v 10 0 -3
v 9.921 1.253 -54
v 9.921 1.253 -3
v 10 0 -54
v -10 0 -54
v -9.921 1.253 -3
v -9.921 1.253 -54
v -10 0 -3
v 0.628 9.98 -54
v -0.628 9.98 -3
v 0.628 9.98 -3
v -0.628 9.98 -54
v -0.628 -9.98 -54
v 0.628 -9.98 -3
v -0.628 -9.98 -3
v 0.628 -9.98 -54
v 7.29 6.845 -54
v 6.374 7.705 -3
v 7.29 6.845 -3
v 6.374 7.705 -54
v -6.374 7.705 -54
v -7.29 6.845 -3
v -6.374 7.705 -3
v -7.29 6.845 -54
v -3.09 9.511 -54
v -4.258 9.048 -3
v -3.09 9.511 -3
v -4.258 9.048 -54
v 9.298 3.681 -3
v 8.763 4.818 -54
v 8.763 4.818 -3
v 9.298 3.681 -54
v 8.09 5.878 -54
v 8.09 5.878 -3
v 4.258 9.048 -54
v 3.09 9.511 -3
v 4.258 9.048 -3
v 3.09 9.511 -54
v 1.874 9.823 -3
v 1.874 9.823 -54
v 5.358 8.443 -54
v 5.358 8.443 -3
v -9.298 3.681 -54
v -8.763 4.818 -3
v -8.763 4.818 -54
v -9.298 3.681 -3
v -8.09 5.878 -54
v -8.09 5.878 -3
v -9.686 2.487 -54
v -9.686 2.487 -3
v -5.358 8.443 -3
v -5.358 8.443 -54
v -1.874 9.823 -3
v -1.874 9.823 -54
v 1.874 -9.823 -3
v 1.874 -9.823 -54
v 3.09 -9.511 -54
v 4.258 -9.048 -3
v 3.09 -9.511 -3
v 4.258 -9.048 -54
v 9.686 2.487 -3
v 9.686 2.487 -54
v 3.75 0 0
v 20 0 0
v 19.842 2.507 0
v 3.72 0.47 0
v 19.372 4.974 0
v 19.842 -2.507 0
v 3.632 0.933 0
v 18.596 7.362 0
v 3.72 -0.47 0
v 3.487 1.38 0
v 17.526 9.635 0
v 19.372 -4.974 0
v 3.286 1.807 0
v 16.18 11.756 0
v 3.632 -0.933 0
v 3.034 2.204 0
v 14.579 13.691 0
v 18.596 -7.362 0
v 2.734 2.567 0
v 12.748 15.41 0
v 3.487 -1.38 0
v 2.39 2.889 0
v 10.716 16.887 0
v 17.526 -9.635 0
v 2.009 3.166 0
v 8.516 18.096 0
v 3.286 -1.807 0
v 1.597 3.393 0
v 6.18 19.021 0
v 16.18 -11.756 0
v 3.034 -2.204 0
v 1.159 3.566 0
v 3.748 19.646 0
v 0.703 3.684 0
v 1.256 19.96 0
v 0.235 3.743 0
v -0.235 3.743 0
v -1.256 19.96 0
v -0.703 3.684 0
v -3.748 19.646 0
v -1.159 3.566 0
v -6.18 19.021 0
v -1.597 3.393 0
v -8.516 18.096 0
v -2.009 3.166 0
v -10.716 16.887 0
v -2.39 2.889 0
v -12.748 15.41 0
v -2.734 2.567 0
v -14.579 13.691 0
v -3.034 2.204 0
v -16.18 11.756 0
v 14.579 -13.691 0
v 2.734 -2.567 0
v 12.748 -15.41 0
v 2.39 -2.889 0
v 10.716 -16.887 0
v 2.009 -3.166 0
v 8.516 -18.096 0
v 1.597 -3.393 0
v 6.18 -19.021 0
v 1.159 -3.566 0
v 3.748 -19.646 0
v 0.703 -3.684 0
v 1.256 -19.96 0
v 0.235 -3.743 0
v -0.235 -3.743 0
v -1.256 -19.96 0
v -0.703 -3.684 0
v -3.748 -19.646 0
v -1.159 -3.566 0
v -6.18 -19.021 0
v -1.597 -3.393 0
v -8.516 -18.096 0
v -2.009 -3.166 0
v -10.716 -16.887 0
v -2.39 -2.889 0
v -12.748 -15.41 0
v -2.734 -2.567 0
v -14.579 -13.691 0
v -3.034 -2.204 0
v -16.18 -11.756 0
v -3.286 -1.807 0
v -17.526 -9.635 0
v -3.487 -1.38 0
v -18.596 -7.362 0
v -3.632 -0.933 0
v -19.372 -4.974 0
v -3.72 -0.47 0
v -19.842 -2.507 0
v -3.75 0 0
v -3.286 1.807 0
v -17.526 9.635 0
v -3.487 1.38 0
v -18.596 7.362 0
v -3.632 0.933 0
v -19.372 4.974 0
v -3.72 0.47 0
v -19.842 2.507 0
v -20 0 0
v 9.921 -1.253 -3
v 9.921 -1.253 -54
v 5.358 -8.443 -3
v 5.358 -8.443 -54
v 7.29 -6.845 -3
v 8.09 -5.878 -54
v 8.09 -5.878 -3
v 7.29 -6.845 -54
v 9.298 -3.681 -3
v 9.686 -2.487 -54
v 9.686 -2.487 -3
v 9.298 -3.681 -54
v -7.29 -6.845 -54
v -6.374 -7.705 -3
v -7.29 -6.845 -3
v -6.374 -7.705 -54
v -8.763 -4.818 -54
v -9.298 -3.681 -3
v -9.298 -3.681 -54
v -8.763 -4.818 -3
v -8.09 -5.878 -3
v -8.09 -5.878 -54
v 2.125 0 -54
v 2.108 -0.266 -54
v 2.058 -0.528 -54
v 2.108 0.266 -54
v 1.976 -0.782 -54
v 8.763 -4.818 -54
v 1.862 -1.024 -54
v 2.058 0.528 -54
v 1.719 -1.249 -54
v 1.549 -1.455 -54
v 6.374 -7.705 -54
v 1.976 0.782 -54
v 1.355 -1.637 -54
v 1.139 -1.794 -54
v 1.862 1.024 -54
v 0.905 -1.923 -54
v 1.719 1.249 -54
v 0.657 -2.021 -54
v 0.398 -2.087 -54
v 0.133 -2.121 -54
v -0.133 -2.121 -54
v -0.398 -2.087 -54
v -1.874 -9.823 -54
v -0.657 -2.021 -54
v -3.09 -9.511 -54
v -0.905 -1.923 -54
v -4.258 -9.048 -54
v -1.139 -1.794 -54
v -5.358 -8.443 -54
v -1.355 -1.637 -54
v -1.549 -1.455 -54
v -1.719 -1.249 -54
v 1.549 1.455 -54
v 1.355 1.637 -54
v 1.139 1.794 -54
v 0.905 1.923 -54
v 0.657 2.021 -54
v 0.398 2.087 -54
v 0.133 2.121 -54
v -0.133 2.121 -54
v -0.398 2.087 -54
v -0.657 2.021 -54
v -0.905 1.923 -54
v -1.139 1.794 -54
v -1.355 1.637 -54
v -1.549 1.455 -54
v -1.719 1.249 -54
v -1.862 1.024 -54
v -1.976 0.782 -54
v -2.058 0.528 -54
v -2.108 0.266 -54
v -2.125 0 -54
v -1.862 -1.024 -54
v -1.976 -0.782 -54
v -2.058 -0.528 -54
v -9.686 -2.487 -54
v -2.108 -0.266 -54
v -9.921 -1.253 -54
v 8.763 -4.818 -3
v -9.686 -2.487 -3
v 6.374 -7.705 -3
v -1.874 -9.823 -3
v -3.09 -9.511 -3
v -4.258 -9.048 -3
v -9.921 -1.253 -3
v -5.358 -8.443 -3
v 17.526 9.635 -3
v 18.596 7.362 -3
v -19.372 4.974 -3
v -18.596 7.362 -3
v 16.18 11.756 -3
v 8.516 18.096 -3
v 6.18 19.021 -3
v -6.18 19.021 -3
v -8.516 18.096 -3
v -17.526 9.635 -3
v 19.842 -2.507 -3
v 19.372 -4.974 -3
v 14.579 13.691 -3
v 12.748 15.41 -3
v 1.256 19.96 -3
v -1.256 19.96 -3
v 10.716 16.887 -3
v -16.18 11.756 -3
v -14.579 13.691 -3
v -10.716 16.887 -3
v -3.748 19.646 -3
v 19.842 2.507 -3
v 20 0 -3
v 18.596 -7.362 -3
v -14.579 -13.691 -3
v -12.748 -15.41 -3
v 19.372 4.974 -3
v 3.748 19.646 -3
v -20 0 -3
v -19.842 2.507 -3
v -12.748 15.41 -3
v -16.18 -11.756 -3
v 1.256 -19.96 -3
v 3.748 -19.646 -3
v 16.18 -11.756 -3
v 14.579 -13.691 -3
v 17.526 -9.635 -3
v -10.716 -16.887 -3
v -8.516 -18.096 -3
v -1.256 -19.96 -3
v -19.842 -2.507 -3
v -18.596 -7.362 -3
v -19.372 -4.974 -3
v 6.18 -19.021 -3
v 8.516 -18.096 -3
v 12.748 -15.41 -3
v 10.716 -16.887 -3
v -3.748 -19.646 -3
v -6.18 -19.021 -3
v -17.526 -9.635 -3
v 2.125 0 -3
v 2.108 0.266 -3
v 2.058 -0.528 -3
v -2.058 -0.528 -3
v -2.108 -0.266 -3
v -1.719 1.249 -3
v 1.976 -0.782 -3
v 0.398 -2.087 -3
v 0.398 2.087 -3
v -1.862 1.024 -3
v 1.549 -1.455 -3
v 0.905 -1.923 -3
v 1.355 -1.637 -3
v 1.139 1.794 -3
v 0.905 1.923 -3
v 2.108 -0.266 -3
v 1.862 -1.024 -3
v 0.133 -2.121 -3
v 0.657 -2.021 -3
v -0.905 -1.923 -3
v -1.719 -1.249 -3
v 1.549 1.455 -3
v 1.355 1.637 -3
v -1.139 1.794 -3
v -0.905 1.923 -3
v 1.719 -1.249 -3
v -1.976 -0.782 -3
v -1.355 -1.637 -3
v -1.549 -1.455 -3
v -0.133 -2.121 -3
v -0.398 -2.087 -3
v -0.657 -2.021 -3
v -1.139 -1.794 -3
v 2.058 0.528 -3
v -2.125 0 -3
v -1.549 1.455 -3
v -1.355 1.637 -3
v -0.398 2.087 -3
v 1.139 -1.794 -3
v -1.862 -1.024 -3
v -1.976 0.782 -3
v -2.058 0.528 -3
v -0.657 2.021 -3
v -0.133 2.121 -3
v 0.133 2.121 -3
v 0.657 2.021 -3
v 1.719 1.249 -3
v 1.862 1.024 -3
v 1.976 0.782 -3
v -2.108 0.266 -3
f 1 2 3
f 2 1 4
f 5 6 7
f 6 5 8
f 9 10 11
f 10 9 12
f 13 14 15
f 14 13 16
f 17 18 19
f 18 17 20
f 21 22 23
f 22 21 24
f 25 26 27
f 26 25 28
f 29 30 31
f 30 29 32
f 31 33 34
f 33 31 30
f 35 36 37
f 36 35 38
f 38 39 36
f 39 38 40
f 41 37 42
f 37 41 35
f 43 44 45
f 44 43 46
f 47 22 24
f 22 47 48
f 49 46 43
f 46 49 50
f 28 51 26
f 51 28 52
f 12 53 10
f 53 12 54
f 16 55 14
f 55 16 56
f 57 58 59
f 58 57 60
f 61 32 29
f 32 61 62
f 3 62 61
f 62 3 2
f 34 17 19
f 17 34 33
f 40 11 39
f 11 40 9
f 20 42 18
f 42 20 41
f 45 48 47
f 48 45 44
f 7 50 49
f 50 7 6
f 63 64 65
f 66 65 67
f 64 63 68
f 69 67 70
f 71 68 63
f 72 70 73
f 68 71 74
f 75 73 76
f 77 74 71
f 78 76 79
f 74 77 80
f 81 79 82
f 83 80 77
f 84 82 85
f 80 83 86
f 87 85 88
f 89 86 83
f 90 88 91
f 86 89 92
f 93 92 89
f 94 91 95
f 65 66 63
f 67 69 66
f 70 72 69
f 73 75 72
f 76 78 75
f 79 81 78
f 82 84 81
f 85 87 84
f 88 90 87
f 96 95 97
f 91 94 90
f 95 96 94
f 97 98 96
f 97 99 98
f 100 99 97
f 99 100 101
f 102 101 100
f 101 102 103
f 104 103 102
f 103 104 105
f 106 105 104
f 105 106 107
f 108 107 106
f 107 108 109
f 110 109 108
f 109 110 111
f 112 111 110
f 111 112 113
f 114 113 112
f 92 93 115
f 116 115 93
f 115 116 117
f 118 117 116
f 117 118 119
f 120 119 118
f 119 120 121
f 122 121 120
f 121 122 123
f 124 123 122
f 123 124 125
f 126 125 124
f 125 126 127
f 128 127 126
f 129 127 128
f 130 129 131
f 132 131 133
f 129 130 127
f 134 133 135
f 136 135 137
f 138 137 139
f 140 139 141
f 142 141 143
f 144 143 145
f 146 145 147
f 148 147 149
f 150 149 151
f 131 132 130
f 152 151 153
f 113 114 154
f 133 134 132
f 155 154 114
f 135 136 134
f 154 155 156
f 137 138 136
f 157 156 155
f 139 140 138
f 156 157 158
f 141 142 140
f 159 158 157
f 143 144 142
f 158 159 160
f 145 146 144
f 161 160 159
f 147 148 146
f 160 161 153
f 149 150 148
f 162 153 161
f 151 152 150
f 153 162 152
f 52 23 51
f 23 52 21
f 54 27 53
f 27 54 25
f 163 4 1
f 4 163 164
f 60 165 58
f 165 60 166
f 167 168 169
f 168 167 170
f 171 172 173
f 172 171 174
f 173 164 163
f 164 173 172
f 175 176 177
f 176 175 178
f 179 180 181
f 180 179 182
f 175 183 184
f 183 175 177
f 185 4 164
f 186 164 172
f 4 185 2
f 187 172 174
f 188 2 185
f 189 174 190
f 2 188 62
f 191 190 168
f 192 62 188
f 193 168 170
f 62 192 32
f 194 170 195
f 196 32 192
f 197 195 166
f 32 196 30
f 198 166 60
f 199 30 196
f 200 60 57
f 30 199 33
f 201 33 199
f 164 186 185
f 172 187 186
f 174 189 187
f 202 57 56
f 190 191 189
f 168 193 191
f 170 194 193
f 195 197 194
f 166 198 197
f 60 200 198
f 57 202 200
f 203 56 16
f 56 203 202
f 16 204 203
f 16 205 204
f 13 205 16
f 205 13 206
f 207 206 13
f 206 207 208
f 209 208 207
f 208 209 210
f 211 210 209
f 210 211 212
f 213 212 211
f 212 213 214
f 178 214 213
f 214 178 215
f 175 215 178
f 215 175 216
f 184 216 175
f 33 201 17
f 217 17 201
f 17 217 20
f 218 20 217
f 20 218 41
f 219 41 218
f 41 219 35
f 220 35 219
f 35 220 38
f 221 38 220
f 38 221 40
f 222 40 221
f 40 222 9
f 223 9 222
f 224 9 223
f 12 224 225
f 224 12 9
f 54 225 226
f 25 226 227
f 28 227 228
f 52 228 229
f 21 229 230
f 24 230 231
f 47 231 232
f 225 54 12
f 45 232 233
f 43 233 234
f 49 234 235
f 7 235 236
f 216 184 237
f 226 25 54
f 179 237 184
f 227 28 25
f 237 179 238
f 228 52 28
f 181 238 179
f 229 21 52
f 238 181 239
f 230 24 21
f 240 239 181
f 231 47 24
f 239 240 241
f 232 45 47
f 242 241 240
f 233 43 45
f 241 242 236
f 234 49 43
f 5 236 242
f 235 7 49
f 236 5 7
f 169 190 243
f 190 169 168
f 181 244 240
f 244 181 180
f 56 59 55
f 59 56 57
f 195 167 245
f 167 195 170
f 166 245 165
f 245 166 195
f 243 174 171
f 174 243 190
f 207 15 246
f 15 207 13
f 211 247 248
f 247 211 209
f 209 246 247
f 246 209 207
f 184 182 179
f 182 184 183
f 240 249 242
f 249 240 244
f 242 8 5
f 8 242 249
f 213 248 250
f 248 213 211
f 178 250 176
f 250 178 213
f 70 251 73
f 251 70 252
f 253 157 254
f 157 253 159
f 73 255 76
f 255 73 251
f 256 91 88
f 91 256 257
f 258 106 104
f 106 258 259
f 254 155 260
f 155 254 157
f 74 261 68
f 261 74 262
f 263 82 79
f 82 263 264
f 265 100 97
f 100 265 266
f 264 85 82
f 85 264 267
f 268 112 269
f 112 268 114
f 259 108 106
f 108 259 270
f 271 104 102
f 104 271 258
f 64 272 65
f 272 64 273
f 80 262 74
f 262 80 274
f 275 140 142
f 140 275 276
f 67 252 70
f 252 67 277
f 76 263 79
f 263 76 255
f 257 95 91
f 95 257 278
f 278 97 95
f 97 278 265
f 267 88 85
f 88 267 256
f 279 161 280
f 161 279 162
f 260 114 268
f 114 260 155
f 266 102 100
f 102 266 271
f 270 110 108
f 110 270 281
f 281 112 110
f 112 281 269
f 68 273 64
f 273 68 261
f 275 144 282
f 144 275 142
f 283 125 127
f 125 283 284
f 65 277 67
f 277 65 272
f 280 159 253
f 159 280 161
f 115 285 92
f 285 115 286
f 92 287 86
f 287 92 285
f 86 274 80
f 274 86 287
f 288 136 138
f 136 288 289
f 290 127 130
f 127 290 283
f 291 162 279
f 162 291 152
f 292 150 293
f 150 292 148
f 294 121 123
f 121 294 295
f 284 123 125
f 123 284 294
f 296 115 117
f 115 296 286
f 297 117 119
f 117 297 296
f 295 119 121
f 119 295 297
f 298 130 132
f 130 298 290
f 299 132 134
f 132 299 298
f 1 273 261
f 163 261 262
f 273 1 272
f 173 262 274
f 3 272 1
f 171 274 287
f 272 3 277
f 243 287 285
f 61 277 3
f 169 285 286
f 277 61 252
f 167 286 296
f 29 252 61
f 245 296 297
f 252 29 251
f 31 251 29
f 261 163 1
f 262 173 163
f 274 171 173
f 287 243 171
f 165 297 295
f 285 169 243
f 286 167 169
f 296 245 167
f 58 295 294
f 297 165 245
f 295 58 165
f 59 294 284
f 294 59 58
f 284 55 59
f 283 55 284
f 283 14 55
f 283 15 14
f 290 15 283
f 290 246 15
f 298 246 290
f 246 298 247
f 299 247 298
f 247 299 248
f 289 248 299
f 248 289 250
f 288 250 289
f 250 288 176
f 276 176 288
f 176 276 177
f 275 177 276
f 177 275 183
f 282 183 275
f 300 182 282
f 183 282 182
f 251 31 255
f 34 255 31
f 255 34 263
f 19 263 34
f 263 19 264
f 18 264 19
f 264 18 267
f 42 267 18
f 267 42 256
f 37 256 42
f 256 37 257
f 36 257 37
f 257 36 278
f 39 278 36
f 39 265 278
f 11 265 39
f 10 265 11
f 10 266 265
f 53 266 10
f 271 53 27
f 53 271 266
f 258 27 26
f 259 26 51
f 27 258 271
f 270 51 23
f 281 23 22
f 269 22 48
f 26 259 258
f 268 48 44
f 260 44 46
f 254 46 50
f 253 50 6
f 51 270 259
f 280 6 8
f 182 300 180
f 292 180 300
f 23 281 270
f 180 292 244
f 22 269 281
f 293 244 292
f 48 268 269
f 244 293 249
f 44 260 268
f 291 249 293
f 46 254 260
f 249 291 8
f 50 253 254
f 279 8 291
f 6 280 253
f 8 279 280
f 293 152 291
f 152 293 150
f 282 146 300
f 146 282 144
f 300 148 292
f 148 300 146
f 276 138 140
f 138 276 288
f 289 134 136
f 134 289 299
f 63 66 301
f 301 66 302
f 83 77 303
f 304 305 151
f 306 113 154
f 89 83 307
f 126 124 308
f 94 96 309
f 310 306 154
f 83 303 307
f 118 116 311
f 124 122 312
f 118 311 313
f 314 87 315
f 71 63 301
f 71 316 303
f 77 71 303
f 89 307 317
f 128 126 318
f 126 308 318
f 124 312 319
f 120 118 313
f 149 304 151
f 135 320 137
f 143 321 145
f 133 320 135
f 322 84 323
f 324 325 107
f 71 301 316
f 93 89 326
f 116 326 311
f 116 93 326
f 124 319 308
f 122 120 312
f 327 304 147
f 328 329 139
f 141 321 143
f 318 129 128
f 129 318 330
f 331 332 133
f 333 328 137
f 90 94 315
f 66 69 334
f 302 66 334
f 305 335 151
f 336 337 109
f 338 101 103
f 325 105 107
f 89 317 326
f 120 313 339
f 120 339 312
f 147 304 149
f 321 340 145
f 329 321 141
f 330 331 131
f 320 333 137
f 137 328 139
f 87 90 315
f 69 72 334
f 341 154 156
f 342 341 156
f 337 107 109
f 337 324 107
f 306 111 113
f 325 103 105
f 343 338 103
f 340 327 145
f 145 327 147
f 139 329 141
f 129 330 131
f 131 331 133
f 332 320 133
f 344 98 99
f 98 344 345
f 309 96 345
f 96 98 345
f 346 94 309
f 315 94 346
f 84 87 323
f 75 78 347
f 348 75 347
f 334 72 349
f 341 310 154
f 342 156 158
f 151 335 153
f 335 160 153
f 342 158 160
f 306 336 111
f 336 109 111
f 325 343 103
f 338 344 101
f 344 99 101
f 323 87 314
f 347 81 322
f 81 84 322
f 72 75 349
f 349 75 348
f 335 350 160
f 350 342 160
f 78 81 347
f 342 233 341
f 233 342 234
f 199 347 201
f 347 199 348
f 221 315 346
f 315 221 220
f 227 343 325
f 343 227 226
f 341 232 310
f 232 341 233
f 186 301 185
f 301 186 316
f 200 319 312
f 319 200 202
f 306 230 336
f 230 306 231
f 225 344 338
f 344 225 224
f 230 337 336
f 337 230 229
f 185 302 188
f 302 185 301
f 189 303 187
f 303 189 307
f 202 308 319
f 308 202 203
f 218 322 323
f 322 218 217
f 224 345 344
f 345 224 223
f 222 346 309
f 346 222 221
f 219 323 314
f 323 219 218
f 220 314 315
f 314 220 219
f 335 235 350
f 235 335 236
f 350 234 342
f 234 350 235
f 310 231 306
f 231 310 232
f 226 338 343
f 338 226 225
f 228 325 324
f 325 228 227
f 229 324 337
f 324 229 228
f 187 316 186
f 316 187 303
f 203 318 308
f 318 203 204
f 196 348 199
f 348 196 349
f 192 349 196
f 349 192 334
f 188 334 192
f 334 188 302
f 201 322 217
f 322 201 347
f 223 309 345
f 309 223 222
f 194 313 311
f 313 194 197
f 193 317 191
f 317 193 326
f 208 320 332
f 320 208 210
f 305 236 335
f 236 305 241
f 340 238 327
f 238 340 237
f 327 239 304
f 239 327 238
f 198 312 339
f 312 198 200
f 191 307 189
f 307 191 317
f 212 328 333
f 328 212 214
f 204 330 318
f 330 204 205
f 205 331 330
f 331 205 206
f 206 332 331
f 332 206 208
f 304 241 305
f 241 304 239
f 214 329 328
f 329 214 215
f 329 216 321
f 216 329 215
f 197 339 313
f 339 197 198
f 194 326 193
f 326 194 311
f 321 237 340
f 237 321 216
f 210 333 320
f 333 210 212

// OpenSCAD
$fn = 50;


difference() {
	union() {
		translate(v = [0, 0, -54.0000000000]) {
			cylinder(h = 54, r = 10.0000000000);
		}
		translate(v = [0, 0, -3.0000000000]) {
			cylinder(h = 3, r = 20.0000000000);
		}
	}
	union() {
		translate(v = [0, 0, 0]) {
			rotate(a = [0, 0, 0]) {
				difference() {
					union() {
						#translate(v = [0, 0, -54.0000000000]) {
							cylinder(h = 54, r = 2.0000000000);
						}
						#translate(v = [0, 0, -3]) {
							cylinder(h = 3, r1 = 2.1250000000, r2 = 3.7500000000);
						}
						#translate(v = [0, 0, -54.0000000000]) {
							cylinder(h = 54, r = 2.1250000000);
						}
						#translate(v = [0, 0, -54.0000000000]) {
							cylinder(h = 54, r = 2.0000000000);
						}
					}
					union();
				}
			}
		}
	}
}
